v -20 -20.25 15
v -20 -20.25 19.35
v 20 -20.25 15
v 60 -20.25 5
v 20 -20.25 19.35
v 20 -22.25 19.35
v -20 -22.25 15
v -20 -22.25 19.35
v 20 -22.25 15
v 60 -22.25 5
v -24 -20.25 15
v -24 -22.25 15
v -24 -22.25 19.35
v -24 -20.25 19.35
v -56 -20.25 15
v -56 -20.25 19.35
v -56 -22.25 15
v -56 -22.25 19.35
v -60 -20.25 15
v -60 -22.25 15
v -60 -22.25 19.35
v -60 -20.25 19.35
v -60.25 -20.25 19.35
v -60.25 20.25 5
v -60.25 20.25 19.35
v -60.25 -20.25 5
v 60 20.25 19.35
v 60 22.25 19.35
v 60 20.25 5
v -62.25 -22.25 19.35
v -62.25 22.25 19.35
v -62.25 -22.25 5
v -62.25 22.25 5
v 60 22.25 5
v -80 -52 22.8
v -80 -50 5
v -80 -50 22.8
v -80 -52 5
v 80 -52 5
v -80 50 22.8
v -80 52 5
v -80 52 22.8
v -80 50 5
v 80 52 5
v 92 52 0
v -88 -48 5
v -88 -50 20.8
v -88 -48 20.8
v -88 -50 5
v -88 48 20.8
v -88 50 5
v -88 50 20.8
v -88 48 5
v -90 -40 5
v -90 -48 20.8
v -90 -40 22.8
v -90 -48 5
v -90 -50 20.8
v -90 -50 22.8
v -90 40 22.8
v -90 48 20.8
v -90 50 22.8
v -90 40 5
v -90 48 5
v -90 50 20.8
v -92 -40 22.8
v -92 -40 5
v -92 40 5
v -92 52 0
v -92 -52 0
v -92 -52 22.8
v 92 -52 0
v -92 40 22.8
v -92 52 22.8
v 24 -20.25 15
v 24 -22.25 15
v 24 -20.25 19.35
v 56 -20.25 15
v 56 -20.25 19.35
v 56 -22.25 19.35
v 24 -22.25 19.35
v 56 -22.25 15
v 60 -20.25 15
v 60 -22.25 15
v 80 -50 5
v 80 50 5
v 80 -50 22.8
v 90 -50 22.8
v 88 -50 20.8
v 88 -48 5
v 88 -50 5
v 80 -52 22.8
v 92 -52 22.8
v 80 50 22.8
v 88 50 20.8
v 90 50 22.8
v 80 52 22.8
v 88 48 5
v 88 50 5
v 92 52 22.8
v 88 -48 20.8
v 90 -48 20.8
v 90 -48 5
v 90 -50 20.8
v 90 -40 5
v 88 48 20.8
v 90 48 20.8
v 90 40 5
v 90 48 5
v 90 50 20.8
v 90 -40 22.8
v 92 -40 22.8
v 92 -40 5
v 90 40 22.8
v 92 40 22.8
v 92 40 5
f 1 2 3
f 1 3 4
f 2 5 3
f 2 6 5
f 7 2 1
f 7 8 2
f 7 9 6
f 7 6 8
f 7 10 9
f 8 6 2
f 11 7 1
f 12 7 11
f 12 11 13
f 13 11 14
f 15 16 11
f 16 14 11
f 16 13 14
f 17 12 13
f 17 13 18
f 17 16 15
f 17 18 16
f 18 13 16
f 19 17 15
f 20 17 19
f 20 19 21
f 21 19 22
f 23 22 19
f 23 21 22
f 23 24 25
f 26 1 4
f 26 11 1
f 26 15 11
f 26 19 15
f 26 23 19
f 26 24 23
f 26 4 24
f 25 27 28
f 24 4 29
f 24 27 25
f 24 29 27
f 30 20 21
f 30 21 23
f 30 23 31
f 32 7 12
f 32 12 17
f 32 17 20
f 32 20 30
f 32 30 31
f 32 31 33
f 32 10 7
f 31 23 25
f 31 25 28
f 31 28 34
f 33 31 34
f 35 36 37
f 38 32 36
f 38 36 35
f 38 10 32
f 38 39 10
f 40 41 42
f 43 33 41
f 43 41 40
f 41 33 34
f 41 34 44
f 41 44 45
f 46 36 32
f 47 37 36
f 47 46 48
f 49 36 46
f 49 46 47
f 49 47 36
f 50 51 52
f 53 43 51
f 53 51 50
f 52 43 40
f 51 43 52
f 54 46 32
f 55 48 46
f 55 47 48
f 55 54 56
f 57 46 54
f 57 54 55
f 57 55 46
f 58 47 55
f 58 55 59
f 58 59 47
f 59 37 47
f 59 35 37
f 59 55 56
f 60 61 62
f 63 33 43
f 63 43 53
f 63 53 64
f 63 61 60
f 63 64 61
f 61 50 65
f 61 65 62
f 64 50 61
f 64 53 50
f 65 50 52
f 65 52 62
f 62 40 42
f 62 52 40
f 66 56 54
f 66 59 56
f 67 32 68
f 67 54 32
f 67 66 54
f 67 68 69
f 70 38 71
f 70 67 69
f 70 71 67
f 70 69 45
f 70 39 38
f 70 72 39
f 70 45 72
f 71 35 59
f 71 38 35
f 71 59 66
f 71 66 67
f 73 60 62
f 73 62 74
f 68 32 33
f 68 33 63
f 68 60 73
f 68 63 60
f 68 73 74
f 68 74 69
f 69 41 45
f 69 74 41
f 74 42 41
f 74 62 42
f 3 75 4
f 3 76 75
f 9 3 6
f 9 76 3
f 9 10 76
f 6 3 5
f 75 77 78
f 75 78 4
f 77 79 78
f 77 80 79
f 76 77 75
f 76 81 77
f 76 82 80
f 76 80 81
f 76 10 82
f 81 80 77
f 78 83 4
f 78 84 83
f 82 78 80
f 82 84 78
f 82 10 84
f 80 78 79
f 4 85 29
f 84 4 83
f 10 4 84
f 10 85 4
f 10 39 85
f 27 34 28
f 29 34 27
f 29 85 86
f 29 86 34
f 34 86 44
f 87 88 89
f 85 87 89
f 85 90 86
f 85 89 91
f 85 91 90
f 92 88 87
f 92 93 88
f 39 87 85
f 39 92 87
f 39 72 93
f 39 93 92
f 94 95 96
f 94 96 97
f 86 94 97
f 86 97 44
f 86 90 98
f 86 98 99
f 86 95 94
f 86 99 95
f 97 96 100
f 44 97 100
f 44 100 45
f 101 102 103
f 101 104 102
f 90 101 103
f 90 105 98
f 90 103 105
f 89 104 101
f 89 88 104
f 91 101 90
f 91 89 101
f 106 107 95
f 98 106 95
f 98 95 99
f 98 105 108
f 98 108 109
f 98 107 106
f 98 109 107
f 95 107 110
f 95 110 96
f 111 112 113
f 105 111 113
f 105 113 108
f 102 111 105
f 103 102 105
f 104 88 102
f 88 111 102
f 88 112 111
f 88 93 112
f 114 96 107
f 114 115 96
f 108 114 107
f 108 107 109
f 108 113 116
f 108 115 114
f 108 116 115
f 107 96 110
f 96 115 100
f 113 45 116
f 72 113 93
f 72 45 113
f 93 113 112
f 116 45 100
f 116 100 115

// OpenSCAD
// file: ../parameters.scad
//============================================//
//                CLOUD CHAMBER               //
//============================================//

observation_surface_x = 180;
observation_surface_y = 100;

//peltiers
peltier_size_x = 40;
peltier_size_y = 40;
peltier_thickness = 2.9;
peltier_cable_diameter = 4;

//water ALU block
water_block_width = 40;
water_block_length = 120;
water_block_thickness = 10;

//hose
hose_outer_diameter = 10;
hose_inner_diameter = 8;


//========== ALU PROFILES ==========//

//L_profile 2015
L_2015_width = 20;
L_2015_height = 15;
L_2015_thickness = 2;

//T_profile 2020
T_2020_width = 20;
T_2020_height = 20;
T_2020_thickness = 2;


//========== SCREWS ==========//

//Screw diameter and nut for M10 [mm]
M10_screw_diameter=10.4;
M10_head_height = 10;
M10_head_diameter = 16+0.5;
M10_nut_height = 10.5;
M10_nut_diameter = 25.5;
M10_nut_pocket = 22.3;

//Screw diameter and nut for M8 [mm]
M8_screw_diameter = 8 + 1;
M8_head_height = 8;
M8_head_diameter = 13.5;
M8_nut_height = 7.5;
M8_nut_diameter = 14.4 + 0.5;
M8_nut_pocket = 13 + 0.5;

//Screw diameter and nut for M6 [mm]
M6_screw_diameter=6.5;
M6_head_diameter = 10+0.5;
M6_head_height = 6;
M6_nut_height = 4.9;
M6_nut_diameter = 11.8;
M6_nut_pocket = 10.4;

//Screw diameter and nut for M5 [mm]
M5_screw_diameter=5.5;
M5_head_height = 5;
M5_head_diameter = 13+0.5;
M5_nut_height = 4.5;
M5_nut_diameter = 9.4;
M5_nut_pocket = 8.4;

//Screw diameter and nut for M4 [mm]
M4_screw_diameter=4.5;
M4_screw_head_height = 4;
M4_nut_height = 3.2;
M4_nut_diameter = 8.4;
M4_nut_pocket = 7.5;

//Screw diameter and nut for M3 [mm]
M3_screw_diameter = 3.2;
M3_nut_height = 2.7;
M3_nut_diameter = 6.6;
M3_screw_head_height = 3;
M3_nut_pocket = 5.6;

//Screw diameter and nut for M2,5 [mm]
M2_5_screw_diameter = 2.7;
M2_5_nut_height = 2.3;
M2_5_nut_diameter = 6;
M2_5_nut_pocket = 5.1;
// main file
include <../parameters.scad>

bottom_thickness = 5;
border_thickness = 2;
border_height = water_block_thickness+peltier_thickness*2+2;
border_corner_size = 10;
copper_plate_support = 2;
water_block_tolerance = 0.5;

module 1001_AB(peltiers=false) {
    if(peltiers==true) {
        translate([0, 0, bottom_thickness+water_block_thickness/2])
            #cube([water_block_length, water_block_width, water_block_thickness], center=true);

        translate([-water_block_length/2+peltier_size_x/2, 0, bottom_thickness+water_block_thickness+peltier_thickness])
            #cube([peltier_size_x, peltier_size_y, peltier_thickness*2], center=true);

        translate([water_block_length/2-peltier_size_x/2, 0, bottom_thickness+water_block_thickness+peltier_thickness])
            #cube([peltier_size_x, peltier_size_y, peltier_thickness*2], center=true);
    }

    translate([observation_surface_x/2-copper_plate_support, observation_surface_y/2-copper_plate_support, bottom_thickness])
        cube([copper_plate_support, copper_plate_support, water_block_thickness+peltier_thickness*2]);

    translate([observation_surface_x/2-copper_plate_support, -observation_surface_y/2, bottom_thickness])
        cube([copper_plate_support, copper_plate_support, water_block_thickness+peltier_thickness*2]);

    translate([-observation_surface_x/2, observation_surface_y/2-copper_plate_support, bottom_thickness])
        cube([copper_plate_support, copper_plate_support, water_block_thickness+peltier_thickness*2]);

    translate([-observation_surface_x/2, -observation_surface_y/2, bottom_thickness])
        cube([copper_plate_support, copper_plate_support, water_block_thickness+peltier_thickness*2]);

    difference() {
        translate([0, 0, bottom_thickness+(water_block_thickness+peltier_thickness*1.5)/2]) {
            cube([water_block_length+border_thickness*2+water_block_tolerance, water_block_width+border_thickness*2+water_block_tolerance, water_block_thickness+peltier_thickness*1.5], center=true);
        }
        translate([water_block_length/2, -water_block_width, 0])
            cube([100, water_block_width*2, 100]);

        translate([0, 0 ,bottom_thickness+50])
            cube([water_block_length+water_block_tolerance, water_block_width+water_block_tolerance, 100], center=true);

        translate([-water_block_length/2, -water_block_width/2-water_block_tolerance/2-border_thickness-0.1, bottom_thickness+water_block_thickness])
            cube([peltier_cable_diameter, border_thickness*2, 20]);

        translate([-water_block_length/2+peltier_size_x-peltier_cable_diameter, -water_block_width/2-water_block_tolerance/2-border_thickness-0.1, bottom_thickness+water_block_thickness])
            cube([peltier_cable_diameter, border_thickness*2, 20]);

        translate([water_block_length/2-peltier_size_x, -water_block_width/2-water_block_tolerance/2-border_thickness-0.1, bottom_thickness+water_block_thickness])
            cube([peltier_cable_diameter, border_thickness*2, 20]);

        translate([water_block_length/2-peltier_cable_diameter, -water_block_width/2-water_block_tolerance/2-border_thickness-0.1, bottom_thickness+water_block_thickness])
            cube([peltier_cable_diameter, border_thickness*2, 20]);
    }

    difference() {
        union() {
            translate([0, 0, (bottom_thickness+border_height)/2])
                cube([observation_surface_x+border_thickness*2, observation_surface_y+border_thickness*2, bottom_thickness+border_height], center=true);

            
        }

        translate([0, 0, bottom_thickness+50])
            cube([observation_surface_x, observation_surface_y, 100], center=true);

        translate([0, 0, bottom_thickness+50])
            cube([observation_surface_x-border_corner_size*2, observation_surface_y*2, 100], center=true);

        translate([0, 0, bottom_thickness+50])
            cube([observation_surface_x*2, observation_surface_y-border_corner_size*2, 100], center=true);
    }
}

1001_AB();
